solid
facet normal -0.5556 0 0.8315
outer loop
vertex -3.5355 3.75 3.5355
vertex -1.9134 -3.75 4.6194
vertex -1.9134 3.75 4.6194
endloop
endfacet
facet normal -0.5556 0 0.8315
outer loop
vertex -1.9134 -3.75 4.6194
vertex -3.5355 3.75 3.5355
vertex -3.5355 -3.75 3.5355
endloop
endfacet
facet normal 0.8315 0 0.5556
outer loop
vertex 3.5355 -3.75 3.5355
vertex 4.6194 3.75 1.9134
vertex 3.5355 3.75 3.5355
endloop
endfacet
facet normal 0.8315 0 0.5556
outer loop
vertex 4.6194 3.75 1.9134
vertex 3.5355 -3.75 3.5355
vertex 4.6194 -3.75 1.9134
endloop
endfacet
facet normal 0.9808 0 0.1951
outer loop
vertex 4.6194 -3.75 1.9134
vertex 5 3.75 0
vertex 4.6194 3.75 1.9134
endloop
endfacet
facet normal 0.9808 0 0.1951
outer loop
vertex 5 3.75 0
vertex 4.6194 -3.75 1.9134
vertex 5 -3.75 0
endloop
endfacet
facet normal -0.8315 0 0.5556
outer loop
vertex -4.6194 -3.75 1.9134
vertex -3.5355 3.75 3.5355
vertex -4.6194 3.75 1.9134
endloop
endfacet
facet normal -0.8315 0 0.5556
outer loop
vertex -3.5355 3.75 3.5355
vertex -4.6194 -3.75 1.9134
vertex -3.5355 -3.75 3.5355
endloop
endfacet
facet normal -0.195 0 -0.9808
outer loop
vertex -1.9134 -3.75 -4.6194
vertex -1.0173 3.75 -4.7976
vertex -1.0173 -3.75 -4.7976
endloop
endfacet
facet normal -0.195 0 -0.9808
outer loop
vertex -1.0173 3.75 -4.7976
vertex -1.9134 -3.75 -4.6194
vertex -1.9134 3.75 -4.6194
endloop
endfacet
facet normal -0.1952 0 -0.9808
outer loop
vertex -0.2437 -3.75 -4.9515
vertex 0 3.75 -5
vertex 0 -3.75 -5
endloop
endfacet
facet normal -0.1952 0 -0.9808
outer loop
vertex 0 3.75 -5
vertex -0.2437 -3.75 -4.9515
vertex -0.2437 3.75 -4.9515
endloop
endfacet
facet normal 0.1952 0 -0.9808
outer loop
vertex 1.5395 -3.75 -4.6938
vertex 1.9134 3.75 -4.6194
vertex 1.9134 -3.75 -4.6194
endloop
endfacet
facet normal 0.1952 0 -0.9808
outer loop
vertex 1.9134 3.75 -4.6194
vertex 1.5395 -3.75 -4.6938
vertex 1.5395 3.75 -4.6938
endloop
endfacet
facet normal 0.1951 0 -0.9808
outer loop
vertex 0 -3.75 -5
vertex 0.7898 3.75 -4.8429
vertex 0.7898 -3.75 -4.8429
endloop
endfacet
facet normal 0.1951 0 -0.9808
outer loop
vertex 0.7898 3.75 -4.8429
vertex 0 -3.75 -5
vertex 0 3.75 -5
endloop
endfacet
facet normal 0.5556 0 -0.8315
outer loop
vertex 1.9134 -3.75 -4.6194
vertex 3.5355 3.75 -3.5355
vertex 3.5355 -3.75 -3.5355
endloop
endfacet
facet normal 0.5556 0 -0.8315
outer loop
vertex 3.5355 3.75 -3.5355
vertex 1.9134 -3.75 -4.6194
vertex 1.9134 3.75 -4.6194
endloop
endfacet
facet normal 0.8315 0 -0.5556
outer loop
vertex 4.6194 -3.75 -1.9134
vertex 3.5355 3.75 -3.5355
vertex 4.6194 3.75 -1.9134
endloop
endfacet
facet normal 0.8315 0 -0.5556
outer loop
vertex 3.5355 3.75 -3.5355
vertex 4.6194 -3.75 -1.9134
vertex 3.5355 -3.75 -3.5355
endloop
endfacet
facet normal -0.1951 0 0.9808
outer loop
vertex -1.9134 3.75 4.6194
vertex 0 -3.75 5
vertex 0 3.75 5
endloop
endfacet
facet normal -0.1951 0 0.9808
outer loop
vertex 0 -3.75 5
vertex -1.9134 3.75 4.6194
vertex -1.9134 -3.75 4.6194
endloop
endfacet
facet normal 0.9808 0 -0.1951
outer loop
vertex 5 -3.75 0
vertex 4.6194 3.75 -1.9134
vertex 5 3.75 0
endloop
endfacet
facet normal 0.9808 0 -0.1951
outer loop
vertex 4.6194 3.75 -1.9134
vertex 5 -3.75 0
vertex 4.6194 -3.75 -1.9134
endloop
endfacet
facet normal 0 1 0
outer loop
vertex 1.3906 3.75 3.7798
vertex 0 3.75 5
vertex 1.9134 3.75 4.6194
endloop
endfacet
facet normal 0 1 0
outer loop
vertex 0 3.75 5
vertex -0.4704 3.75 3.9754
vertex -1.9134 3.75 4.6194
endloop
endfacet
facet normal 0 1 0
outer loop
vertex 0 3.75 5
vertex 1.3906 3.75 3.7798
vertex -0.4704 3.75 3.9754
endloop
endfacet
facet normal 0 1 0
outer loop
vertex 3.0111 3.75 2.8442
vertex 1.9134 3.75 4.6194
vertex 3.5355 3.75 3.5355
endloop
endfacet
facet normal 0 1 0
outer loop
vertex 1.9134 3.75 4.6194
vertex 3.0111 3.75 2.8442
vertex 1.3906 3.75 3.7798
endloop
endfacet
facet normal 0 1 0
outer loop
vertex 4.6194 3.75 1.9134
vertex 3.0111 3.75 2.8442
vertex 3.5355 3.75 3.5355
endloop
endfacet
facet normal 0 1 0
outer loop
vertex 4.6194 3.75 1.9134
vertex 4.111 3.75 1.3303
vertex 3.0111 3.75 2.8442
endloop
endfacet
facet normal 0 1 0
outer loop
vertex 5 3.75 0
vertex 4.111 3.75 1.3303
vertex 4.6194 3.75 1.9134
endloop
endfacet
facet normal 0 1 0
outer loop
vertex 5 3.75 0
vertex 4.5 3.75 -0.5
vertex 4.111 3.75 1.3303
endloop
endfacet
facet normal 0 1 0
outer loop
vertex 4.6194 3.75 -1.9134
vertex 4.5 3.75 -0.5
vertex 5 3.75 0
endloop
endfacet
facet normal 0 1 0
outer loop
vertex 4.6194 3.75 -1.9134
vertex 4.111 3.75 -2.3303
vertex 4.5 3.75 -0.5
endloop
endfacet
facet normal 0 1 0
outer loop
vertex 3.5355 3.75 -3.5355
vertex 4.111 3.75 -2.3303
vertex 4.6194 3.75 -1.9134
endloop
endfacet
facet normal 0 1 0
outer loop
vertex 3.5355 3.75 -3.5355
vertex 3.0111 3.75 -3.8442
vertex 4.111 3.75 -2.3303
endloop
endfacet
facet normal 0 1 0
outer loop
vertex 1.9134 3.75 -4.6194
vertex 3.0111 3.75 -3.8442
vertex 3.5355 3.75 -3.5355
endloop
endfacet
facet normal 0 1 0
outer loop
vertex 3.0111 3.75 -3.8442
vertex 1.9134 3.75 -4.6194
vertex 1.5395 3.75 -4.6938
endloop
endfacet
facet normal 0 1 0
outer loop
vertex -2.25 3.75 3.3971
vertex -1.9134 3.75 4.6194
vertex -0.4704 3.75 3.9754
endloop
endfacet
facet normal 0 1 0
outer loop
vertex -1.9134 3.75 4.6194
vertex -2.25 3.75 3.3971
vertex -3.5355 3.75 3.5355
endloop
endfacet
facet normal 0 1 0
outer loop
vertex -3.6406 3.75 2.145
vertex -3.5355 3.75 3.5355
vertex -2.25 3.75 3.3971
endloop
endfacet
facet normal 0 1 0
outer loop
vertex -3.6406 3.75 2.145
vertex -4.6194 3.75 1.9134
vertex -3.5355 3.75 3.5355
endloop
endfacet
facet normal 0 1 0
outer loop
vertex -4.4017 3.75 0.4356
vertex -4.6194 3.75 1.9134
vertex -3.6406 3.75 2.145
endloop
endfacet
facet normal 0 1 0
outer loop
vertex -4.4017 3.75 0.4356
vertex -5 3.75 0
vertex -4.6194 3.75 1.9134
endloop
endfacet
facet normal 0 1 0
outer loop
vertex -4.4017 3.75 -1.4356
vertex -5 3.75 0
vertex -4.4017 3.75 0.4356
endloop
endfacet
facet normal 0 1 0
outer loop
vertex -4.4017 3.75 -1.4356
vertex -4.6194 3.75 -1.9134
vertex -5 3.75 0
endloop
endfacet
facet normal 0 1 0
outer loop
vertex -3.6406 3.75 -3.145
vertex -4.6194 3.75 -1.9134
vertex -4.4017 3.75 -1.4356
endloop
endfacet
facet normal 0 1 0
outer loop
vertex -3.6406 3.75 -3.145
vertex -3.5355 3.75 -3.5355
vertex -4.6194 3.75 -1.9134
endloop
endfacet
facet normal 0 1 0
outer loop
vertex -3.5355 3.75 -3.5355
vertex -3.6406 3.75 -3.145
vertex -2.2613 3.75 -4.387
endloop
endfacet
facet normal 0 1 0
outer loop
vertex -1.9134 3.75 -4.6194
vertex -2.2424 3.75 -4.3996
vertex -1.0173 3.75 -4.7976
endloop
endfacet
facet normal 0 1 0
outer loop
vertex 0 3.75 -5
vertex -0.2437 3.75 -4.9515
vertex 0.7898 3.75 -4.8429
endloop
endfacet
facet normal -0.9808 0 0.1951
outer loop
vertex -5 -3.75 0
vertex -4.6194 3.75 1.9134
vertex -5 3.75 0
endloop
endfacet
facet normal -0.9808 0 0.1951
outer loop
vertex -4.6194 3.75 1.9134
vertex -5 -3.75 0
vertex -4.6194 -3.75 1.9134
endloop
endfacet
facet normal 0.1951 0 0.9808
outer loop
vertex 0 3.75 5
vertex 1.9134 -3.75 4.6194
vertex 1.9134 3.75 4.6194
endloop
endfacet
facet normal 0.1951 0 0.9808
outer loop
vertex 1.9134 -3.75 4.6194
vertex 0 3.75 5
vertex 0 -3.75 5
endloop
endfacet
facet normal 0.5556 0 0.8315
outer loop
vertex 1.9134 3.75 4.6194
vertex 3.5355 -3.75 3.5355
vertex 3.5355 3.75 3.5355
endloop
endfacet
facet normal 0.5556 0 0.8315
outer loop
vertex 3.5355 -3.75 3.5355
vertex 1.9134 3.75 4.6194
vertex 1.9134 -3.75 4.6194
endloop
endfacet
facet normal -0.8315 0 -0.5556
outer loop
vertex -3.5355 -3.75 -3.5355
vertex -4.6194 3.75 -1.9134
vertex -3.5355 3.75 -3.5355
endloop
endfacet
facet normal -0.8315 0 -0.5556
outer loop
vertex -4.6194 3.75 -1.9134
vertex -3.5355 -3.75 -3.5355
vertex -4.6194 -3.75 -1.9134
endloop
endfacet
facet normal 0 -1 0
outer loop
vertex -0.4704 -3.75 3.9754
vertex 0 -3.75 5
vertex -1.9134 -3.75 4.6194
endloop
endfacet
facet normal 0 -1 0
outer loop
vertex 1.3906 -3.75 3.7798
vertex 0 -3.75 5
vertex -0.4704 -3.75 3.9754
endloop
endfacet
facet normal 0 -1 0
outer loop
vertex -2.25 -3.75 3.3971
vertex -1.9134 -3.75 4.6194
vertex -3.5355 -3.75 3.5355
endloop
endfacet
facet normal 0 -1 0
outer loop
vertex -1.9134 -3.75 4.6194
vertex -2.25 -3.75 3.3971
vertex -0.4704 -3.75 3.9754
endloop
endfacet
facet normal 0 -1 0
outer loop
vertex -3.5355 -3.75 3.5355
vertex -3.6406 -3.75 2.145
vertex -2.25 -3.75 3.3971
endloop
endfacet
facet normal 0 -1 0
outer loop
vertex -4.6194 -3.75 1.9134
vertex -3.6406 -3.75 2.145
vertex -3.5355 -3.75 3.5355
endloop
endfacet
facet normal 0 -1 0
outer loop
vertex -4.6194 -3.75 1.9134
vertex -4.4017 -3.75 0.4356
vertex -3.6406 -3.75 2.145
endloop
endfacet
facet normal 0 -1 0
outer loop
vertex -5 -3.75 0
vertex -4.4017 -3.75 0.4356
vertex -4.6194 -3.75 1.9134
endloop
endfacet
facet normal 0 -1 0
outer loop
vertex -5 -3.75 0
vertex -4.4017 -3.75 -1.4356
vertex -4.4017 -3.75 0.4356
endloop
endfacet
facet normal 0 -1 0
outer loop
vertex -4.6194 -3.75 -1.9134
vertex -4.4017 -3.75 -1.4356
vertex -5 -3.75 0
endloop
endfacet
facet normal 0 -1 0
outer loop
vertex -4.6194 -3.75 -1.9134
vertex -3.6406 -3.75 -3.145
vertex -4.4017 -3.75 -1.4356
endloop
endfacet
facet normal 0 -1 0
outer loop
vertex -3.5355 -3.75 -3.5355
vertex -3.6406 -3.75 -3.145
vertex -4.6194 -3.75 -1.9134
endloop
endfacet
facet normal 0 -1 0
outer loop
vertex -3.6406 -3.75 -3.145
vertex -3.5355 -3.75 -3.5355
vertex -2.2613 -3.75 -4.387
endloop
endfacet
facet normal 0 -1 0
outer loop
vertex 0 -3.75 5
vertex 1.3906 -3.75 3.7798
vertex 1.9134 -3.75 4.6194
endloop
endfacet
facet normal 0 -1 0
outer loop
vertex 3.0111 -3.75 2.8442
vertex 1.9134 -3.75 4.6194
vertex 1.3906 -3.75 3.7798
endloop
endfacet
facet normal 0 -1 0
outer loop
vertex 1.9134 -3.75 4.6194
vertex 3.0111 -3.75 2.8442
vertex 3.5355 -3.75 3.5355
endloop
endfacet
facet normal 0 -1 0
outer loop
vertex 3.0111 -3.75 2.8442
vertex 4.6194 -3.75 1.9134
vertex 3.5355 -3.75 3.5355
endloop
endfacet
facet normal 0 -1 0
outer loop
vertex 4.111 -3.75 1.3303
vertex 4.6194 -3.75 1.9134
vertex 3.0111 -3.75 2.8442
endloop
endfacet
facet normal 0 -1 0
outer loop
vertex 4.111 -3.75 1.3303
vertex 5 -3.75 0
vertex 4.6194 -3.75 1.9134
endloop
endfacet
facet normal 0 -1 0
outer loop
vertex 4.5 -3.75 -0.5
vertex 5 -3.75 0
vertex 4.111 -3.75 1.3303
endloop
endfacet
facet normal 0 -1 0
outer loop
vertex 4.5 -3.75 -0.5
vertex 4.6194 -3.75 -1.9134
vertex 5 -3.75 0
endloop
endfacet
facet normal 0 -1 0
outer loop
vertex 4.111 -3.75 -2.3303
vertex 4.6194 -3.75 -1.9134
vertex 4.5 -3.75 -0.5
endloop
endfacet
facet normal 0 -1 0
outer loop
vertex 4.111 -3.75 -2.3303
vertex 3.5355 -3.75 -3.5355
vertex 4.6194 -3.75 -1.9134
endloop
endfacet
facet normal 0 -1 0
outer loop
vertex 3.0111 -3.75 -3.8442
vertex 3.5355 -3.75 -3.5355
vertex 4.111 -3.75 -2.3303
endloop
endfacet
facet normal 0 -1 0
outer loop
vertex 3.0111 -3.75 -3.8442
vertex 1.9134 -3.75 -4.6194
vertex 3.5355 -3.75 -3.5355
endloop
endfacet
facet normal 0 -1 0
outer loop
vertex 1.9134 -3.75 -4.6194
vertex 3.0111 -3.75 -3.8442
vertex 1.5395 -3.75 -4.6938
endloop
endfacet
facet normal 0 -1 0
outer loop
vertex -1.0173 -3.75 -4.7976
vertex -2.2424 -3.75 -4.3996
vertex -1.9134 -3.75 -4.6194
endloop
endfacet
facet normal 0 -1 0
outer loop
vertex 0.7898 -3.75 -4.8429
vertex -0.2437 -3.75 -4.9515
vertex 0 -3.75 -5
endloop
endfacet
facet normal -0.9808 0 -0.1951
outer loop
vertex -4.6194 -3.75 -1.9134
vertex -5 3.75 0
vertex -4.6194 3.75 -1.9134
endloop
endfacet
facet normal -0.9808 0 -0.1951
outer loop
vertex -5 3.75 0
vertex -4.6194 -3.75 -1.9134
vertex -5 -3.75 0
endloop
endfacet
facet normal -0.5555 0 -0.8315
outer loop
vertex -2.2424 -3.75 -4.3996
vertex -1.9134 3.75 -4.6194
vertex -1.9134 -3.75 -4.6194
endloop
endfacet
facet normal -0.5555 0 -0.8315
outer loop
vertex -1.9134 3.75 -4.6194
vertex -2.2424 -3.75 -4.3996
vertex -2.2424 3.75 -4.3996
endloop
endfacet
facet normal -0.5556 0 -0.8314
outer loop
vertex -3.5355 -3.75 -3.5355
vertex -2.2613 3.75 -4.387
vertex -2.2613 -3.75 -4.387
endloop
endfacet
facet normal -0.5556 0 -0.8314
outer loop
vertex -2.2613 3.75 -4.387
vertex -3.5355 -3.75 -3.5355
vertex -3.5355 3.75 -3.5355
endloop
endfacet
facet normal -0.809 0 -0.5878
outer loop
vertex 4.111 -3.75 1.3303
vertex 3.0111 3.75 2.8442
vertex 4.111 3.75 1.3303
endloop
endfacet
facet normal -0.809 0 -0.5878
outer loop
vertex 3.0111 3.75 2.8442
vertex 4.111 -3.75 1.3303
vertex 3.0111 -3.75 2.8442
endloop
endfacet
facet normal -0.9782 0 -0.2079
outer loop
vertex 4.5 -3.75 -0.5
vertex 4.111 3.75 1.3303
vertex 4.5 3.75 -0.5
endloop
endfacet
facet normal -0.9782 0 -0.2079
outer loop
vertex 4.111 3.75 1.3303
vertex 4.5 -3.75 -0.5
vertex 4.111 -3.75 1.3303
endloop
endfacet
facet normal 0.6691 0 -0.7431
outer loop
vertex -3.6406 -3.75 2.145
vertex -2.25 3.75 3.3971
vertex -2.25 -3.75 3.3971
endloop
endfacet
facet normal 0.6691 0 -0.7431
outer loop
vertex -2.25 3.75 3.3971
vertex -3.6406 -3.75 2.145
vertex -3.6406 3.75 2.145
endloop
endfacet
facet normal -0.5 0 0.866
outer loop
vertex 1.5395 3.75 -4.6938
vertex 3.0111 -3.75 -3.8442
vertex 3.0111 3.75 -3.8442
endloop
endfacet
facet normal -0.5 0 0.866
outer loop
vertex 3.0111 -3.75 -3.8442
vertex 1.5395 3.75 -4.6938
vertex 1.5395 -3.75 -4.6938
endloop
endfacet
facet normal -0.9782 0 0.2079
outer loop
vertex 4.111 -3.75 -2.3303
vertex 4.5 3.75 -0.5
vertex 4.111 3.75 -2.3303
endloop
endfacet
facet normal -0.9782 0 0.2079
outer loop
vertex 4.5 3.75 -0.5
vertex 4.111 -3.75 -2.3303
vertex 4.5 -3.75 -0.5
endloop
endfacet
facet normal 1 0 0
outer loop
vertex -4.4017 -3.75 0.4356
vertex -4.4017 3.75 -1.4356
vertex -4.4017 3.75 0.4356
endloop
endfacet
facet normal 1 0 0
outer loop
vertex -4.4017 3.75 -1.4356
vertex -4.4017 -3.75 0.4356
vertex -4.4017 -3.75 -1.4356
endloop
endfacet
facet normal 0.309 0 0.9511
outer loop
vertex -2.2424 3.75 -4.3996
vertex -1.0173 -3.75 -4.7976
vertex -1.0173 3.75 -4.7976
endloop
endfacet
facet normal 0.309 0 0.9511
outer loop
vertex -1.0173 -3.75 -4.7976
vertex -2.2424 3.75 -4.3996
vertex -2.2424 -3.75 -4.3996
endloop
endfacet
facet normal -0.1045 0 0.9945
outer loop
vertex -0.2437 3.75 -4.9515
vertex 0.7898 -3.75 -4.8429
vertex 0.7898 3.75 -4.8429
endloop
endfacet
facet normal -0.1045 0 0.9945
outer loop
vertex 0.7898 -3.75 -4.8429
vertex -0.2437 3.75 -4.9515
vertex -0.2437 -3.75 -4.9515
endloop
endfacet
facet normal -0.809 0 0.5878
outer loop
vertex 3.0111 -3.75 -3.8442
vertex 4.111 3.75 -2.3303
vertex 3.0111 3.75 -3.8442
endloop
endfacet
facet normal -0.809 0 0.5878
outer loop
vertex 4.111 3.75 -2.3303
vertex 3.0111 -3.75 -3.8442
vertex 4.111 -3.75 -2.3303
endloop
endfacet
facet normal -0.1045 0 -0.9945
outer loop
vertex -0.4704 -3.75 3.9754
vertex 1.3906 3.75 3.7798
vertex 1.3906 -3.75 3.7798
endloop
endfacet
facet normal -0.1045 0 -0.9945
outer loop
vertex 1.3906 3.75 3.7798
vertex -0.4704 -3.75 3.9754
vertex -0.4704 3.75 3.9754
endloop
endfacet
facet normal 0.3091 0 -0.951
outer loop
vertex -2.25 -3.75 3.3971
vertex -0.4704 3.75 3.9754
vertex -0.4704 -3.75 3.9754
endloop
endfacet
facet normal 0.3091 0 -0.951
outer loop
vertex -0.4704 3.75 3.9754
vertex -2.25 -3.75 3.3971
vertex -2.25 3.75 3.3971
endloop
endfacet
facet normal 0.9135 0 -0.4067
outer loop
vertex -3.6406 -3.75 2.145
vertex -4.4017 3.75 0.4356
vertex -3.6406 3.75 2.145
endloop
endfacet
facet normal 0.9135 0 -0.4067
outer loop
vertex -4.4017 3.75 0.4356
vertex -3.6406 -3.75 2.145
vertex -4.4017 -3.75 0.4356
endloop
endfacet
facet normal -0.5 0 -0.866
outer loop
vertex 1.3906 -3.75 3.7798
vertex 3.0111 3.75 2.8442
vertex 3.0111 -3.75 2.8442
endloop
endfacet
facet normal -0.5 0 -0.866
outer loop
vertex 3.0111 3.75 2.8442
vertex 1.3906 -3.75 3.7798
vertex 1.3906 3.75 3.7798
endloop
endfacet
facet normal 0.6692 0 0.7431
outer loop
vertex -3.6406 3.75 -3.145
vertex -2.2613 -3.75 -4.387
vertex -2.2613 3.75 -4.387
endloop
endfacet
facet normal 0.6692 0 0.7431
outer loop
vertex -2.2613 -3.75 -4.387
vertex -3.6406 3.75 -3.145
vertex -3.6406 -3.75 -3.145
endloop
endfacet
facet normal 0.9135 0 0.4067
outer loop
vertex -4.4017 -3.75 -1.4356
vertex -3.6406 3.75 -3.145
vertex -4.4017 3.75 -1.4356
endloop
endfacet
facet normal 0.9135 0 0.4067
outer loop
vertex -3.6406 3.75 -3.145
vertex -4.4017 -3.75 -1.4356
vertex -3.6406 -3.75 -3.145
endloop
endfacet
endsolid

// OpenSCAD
module frame() {
    translate([0, 0, 0]) {
        difference() {
            // Outer shape
            scale([1, 0.5, 1])
                rotate([90, 0, 0])
                cylinder(h=15, r1=5, r2=5, center=true);
            
            // Inner shape
            translate([0, 0, -0.5]) {
                scale([1, 0.5, 1])
                    rotate([90, 0, 0])
                    cylinder(h=15, r1=4.5, r2=4.5, center=true);
            }
        }
    }
}

frame();
